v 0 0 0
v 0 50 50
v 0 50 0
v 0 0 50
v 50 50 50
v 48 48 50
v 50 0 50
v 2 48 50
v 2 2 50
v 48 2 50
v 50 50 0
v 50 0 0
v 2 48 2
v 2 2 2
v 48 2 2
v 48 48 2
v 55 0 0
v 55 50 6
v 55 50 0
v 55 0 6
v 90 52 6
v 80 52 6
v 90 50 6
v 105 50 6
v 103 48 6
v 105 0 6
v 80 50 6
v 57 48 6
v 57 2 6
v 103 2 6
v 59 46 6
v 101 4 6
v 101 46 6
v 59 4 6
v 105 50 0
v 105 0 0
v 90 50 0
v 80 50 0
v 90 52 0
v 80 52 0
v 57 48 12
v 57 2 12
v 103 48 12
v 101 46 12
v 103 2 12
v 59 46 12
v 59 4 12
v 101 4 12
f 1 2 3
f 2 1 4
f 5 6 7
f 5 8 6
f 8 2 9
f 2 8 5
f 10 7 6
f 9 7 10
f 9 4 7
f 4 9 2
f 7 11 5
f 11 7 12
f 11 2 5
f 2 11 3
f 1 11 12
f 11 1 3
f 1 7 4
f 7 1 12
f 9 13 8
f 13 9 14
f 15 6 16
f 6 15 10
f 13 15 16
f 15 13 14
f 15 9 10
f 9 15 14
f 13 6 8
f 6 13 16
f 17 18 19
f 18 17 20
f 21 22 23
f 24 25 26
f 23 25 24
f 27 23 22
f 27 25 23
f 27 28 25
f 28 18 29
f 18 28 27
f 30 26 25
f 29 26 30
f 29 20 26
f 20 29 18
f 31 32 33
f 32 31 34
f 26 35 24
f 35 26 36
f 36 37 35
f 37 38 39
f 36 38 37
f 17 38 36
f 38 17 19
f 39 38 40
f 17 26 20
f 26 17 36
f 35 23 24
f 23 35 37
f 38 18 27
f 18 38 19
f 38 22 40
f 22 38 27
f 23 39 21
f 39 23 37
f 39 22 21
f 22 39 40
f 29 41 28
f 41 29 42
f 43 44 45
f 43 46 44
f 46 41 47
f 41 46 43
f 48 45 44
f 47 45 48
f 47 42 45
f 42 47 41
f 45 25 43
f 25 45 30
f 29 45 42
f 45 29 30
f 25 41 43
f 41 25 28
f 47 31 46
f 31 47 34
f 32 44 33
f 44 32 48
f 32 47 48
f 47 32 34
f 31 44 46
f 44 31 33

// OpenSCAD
w = 50 ;
l = 50 ;
h = 50 ;
wall_thickness = 2;

lid_thickness = 12;
lid_clearance = 0;

// Lid top
module top_l() {
    cube([w, l, lid_thickness/2]);
    translate([w*.5, l, 0])
    cube([10, 2, lid_thickness/2]); // this is the tab
}
// Lid bottom
module bottom_l() {
    difference() { // hollow out the lid bottom
        cube([(w - (wall_thickness*2))- lid_clearance , (l - (wall_thickness*2))-lid_clearance, lid_thickness/2 ]);
        translate([wall_thickness, wall_thickness, 0])
        cube([(w - (wall_thickness*4)) , (l - (wall_thickness*4)), (lid_thickness/2)+1]);
    }
}

difference() {
    // Outer box
    cube([w, l, h]);

    // Inner hollow space
    translate([wall_thickness, wall_thickness, wall_thickness])
        cube([
            w - 2 * wall_thickness,
            l - 2 * wall_thickness,
            h
        ]);
}

// Create the lid and put it on the side
translate([w*1.1, 0, 0])
{
top_l();
translate([wall_thickness, wall_thickness, lid_thickness/2])
bottom_l();
}
